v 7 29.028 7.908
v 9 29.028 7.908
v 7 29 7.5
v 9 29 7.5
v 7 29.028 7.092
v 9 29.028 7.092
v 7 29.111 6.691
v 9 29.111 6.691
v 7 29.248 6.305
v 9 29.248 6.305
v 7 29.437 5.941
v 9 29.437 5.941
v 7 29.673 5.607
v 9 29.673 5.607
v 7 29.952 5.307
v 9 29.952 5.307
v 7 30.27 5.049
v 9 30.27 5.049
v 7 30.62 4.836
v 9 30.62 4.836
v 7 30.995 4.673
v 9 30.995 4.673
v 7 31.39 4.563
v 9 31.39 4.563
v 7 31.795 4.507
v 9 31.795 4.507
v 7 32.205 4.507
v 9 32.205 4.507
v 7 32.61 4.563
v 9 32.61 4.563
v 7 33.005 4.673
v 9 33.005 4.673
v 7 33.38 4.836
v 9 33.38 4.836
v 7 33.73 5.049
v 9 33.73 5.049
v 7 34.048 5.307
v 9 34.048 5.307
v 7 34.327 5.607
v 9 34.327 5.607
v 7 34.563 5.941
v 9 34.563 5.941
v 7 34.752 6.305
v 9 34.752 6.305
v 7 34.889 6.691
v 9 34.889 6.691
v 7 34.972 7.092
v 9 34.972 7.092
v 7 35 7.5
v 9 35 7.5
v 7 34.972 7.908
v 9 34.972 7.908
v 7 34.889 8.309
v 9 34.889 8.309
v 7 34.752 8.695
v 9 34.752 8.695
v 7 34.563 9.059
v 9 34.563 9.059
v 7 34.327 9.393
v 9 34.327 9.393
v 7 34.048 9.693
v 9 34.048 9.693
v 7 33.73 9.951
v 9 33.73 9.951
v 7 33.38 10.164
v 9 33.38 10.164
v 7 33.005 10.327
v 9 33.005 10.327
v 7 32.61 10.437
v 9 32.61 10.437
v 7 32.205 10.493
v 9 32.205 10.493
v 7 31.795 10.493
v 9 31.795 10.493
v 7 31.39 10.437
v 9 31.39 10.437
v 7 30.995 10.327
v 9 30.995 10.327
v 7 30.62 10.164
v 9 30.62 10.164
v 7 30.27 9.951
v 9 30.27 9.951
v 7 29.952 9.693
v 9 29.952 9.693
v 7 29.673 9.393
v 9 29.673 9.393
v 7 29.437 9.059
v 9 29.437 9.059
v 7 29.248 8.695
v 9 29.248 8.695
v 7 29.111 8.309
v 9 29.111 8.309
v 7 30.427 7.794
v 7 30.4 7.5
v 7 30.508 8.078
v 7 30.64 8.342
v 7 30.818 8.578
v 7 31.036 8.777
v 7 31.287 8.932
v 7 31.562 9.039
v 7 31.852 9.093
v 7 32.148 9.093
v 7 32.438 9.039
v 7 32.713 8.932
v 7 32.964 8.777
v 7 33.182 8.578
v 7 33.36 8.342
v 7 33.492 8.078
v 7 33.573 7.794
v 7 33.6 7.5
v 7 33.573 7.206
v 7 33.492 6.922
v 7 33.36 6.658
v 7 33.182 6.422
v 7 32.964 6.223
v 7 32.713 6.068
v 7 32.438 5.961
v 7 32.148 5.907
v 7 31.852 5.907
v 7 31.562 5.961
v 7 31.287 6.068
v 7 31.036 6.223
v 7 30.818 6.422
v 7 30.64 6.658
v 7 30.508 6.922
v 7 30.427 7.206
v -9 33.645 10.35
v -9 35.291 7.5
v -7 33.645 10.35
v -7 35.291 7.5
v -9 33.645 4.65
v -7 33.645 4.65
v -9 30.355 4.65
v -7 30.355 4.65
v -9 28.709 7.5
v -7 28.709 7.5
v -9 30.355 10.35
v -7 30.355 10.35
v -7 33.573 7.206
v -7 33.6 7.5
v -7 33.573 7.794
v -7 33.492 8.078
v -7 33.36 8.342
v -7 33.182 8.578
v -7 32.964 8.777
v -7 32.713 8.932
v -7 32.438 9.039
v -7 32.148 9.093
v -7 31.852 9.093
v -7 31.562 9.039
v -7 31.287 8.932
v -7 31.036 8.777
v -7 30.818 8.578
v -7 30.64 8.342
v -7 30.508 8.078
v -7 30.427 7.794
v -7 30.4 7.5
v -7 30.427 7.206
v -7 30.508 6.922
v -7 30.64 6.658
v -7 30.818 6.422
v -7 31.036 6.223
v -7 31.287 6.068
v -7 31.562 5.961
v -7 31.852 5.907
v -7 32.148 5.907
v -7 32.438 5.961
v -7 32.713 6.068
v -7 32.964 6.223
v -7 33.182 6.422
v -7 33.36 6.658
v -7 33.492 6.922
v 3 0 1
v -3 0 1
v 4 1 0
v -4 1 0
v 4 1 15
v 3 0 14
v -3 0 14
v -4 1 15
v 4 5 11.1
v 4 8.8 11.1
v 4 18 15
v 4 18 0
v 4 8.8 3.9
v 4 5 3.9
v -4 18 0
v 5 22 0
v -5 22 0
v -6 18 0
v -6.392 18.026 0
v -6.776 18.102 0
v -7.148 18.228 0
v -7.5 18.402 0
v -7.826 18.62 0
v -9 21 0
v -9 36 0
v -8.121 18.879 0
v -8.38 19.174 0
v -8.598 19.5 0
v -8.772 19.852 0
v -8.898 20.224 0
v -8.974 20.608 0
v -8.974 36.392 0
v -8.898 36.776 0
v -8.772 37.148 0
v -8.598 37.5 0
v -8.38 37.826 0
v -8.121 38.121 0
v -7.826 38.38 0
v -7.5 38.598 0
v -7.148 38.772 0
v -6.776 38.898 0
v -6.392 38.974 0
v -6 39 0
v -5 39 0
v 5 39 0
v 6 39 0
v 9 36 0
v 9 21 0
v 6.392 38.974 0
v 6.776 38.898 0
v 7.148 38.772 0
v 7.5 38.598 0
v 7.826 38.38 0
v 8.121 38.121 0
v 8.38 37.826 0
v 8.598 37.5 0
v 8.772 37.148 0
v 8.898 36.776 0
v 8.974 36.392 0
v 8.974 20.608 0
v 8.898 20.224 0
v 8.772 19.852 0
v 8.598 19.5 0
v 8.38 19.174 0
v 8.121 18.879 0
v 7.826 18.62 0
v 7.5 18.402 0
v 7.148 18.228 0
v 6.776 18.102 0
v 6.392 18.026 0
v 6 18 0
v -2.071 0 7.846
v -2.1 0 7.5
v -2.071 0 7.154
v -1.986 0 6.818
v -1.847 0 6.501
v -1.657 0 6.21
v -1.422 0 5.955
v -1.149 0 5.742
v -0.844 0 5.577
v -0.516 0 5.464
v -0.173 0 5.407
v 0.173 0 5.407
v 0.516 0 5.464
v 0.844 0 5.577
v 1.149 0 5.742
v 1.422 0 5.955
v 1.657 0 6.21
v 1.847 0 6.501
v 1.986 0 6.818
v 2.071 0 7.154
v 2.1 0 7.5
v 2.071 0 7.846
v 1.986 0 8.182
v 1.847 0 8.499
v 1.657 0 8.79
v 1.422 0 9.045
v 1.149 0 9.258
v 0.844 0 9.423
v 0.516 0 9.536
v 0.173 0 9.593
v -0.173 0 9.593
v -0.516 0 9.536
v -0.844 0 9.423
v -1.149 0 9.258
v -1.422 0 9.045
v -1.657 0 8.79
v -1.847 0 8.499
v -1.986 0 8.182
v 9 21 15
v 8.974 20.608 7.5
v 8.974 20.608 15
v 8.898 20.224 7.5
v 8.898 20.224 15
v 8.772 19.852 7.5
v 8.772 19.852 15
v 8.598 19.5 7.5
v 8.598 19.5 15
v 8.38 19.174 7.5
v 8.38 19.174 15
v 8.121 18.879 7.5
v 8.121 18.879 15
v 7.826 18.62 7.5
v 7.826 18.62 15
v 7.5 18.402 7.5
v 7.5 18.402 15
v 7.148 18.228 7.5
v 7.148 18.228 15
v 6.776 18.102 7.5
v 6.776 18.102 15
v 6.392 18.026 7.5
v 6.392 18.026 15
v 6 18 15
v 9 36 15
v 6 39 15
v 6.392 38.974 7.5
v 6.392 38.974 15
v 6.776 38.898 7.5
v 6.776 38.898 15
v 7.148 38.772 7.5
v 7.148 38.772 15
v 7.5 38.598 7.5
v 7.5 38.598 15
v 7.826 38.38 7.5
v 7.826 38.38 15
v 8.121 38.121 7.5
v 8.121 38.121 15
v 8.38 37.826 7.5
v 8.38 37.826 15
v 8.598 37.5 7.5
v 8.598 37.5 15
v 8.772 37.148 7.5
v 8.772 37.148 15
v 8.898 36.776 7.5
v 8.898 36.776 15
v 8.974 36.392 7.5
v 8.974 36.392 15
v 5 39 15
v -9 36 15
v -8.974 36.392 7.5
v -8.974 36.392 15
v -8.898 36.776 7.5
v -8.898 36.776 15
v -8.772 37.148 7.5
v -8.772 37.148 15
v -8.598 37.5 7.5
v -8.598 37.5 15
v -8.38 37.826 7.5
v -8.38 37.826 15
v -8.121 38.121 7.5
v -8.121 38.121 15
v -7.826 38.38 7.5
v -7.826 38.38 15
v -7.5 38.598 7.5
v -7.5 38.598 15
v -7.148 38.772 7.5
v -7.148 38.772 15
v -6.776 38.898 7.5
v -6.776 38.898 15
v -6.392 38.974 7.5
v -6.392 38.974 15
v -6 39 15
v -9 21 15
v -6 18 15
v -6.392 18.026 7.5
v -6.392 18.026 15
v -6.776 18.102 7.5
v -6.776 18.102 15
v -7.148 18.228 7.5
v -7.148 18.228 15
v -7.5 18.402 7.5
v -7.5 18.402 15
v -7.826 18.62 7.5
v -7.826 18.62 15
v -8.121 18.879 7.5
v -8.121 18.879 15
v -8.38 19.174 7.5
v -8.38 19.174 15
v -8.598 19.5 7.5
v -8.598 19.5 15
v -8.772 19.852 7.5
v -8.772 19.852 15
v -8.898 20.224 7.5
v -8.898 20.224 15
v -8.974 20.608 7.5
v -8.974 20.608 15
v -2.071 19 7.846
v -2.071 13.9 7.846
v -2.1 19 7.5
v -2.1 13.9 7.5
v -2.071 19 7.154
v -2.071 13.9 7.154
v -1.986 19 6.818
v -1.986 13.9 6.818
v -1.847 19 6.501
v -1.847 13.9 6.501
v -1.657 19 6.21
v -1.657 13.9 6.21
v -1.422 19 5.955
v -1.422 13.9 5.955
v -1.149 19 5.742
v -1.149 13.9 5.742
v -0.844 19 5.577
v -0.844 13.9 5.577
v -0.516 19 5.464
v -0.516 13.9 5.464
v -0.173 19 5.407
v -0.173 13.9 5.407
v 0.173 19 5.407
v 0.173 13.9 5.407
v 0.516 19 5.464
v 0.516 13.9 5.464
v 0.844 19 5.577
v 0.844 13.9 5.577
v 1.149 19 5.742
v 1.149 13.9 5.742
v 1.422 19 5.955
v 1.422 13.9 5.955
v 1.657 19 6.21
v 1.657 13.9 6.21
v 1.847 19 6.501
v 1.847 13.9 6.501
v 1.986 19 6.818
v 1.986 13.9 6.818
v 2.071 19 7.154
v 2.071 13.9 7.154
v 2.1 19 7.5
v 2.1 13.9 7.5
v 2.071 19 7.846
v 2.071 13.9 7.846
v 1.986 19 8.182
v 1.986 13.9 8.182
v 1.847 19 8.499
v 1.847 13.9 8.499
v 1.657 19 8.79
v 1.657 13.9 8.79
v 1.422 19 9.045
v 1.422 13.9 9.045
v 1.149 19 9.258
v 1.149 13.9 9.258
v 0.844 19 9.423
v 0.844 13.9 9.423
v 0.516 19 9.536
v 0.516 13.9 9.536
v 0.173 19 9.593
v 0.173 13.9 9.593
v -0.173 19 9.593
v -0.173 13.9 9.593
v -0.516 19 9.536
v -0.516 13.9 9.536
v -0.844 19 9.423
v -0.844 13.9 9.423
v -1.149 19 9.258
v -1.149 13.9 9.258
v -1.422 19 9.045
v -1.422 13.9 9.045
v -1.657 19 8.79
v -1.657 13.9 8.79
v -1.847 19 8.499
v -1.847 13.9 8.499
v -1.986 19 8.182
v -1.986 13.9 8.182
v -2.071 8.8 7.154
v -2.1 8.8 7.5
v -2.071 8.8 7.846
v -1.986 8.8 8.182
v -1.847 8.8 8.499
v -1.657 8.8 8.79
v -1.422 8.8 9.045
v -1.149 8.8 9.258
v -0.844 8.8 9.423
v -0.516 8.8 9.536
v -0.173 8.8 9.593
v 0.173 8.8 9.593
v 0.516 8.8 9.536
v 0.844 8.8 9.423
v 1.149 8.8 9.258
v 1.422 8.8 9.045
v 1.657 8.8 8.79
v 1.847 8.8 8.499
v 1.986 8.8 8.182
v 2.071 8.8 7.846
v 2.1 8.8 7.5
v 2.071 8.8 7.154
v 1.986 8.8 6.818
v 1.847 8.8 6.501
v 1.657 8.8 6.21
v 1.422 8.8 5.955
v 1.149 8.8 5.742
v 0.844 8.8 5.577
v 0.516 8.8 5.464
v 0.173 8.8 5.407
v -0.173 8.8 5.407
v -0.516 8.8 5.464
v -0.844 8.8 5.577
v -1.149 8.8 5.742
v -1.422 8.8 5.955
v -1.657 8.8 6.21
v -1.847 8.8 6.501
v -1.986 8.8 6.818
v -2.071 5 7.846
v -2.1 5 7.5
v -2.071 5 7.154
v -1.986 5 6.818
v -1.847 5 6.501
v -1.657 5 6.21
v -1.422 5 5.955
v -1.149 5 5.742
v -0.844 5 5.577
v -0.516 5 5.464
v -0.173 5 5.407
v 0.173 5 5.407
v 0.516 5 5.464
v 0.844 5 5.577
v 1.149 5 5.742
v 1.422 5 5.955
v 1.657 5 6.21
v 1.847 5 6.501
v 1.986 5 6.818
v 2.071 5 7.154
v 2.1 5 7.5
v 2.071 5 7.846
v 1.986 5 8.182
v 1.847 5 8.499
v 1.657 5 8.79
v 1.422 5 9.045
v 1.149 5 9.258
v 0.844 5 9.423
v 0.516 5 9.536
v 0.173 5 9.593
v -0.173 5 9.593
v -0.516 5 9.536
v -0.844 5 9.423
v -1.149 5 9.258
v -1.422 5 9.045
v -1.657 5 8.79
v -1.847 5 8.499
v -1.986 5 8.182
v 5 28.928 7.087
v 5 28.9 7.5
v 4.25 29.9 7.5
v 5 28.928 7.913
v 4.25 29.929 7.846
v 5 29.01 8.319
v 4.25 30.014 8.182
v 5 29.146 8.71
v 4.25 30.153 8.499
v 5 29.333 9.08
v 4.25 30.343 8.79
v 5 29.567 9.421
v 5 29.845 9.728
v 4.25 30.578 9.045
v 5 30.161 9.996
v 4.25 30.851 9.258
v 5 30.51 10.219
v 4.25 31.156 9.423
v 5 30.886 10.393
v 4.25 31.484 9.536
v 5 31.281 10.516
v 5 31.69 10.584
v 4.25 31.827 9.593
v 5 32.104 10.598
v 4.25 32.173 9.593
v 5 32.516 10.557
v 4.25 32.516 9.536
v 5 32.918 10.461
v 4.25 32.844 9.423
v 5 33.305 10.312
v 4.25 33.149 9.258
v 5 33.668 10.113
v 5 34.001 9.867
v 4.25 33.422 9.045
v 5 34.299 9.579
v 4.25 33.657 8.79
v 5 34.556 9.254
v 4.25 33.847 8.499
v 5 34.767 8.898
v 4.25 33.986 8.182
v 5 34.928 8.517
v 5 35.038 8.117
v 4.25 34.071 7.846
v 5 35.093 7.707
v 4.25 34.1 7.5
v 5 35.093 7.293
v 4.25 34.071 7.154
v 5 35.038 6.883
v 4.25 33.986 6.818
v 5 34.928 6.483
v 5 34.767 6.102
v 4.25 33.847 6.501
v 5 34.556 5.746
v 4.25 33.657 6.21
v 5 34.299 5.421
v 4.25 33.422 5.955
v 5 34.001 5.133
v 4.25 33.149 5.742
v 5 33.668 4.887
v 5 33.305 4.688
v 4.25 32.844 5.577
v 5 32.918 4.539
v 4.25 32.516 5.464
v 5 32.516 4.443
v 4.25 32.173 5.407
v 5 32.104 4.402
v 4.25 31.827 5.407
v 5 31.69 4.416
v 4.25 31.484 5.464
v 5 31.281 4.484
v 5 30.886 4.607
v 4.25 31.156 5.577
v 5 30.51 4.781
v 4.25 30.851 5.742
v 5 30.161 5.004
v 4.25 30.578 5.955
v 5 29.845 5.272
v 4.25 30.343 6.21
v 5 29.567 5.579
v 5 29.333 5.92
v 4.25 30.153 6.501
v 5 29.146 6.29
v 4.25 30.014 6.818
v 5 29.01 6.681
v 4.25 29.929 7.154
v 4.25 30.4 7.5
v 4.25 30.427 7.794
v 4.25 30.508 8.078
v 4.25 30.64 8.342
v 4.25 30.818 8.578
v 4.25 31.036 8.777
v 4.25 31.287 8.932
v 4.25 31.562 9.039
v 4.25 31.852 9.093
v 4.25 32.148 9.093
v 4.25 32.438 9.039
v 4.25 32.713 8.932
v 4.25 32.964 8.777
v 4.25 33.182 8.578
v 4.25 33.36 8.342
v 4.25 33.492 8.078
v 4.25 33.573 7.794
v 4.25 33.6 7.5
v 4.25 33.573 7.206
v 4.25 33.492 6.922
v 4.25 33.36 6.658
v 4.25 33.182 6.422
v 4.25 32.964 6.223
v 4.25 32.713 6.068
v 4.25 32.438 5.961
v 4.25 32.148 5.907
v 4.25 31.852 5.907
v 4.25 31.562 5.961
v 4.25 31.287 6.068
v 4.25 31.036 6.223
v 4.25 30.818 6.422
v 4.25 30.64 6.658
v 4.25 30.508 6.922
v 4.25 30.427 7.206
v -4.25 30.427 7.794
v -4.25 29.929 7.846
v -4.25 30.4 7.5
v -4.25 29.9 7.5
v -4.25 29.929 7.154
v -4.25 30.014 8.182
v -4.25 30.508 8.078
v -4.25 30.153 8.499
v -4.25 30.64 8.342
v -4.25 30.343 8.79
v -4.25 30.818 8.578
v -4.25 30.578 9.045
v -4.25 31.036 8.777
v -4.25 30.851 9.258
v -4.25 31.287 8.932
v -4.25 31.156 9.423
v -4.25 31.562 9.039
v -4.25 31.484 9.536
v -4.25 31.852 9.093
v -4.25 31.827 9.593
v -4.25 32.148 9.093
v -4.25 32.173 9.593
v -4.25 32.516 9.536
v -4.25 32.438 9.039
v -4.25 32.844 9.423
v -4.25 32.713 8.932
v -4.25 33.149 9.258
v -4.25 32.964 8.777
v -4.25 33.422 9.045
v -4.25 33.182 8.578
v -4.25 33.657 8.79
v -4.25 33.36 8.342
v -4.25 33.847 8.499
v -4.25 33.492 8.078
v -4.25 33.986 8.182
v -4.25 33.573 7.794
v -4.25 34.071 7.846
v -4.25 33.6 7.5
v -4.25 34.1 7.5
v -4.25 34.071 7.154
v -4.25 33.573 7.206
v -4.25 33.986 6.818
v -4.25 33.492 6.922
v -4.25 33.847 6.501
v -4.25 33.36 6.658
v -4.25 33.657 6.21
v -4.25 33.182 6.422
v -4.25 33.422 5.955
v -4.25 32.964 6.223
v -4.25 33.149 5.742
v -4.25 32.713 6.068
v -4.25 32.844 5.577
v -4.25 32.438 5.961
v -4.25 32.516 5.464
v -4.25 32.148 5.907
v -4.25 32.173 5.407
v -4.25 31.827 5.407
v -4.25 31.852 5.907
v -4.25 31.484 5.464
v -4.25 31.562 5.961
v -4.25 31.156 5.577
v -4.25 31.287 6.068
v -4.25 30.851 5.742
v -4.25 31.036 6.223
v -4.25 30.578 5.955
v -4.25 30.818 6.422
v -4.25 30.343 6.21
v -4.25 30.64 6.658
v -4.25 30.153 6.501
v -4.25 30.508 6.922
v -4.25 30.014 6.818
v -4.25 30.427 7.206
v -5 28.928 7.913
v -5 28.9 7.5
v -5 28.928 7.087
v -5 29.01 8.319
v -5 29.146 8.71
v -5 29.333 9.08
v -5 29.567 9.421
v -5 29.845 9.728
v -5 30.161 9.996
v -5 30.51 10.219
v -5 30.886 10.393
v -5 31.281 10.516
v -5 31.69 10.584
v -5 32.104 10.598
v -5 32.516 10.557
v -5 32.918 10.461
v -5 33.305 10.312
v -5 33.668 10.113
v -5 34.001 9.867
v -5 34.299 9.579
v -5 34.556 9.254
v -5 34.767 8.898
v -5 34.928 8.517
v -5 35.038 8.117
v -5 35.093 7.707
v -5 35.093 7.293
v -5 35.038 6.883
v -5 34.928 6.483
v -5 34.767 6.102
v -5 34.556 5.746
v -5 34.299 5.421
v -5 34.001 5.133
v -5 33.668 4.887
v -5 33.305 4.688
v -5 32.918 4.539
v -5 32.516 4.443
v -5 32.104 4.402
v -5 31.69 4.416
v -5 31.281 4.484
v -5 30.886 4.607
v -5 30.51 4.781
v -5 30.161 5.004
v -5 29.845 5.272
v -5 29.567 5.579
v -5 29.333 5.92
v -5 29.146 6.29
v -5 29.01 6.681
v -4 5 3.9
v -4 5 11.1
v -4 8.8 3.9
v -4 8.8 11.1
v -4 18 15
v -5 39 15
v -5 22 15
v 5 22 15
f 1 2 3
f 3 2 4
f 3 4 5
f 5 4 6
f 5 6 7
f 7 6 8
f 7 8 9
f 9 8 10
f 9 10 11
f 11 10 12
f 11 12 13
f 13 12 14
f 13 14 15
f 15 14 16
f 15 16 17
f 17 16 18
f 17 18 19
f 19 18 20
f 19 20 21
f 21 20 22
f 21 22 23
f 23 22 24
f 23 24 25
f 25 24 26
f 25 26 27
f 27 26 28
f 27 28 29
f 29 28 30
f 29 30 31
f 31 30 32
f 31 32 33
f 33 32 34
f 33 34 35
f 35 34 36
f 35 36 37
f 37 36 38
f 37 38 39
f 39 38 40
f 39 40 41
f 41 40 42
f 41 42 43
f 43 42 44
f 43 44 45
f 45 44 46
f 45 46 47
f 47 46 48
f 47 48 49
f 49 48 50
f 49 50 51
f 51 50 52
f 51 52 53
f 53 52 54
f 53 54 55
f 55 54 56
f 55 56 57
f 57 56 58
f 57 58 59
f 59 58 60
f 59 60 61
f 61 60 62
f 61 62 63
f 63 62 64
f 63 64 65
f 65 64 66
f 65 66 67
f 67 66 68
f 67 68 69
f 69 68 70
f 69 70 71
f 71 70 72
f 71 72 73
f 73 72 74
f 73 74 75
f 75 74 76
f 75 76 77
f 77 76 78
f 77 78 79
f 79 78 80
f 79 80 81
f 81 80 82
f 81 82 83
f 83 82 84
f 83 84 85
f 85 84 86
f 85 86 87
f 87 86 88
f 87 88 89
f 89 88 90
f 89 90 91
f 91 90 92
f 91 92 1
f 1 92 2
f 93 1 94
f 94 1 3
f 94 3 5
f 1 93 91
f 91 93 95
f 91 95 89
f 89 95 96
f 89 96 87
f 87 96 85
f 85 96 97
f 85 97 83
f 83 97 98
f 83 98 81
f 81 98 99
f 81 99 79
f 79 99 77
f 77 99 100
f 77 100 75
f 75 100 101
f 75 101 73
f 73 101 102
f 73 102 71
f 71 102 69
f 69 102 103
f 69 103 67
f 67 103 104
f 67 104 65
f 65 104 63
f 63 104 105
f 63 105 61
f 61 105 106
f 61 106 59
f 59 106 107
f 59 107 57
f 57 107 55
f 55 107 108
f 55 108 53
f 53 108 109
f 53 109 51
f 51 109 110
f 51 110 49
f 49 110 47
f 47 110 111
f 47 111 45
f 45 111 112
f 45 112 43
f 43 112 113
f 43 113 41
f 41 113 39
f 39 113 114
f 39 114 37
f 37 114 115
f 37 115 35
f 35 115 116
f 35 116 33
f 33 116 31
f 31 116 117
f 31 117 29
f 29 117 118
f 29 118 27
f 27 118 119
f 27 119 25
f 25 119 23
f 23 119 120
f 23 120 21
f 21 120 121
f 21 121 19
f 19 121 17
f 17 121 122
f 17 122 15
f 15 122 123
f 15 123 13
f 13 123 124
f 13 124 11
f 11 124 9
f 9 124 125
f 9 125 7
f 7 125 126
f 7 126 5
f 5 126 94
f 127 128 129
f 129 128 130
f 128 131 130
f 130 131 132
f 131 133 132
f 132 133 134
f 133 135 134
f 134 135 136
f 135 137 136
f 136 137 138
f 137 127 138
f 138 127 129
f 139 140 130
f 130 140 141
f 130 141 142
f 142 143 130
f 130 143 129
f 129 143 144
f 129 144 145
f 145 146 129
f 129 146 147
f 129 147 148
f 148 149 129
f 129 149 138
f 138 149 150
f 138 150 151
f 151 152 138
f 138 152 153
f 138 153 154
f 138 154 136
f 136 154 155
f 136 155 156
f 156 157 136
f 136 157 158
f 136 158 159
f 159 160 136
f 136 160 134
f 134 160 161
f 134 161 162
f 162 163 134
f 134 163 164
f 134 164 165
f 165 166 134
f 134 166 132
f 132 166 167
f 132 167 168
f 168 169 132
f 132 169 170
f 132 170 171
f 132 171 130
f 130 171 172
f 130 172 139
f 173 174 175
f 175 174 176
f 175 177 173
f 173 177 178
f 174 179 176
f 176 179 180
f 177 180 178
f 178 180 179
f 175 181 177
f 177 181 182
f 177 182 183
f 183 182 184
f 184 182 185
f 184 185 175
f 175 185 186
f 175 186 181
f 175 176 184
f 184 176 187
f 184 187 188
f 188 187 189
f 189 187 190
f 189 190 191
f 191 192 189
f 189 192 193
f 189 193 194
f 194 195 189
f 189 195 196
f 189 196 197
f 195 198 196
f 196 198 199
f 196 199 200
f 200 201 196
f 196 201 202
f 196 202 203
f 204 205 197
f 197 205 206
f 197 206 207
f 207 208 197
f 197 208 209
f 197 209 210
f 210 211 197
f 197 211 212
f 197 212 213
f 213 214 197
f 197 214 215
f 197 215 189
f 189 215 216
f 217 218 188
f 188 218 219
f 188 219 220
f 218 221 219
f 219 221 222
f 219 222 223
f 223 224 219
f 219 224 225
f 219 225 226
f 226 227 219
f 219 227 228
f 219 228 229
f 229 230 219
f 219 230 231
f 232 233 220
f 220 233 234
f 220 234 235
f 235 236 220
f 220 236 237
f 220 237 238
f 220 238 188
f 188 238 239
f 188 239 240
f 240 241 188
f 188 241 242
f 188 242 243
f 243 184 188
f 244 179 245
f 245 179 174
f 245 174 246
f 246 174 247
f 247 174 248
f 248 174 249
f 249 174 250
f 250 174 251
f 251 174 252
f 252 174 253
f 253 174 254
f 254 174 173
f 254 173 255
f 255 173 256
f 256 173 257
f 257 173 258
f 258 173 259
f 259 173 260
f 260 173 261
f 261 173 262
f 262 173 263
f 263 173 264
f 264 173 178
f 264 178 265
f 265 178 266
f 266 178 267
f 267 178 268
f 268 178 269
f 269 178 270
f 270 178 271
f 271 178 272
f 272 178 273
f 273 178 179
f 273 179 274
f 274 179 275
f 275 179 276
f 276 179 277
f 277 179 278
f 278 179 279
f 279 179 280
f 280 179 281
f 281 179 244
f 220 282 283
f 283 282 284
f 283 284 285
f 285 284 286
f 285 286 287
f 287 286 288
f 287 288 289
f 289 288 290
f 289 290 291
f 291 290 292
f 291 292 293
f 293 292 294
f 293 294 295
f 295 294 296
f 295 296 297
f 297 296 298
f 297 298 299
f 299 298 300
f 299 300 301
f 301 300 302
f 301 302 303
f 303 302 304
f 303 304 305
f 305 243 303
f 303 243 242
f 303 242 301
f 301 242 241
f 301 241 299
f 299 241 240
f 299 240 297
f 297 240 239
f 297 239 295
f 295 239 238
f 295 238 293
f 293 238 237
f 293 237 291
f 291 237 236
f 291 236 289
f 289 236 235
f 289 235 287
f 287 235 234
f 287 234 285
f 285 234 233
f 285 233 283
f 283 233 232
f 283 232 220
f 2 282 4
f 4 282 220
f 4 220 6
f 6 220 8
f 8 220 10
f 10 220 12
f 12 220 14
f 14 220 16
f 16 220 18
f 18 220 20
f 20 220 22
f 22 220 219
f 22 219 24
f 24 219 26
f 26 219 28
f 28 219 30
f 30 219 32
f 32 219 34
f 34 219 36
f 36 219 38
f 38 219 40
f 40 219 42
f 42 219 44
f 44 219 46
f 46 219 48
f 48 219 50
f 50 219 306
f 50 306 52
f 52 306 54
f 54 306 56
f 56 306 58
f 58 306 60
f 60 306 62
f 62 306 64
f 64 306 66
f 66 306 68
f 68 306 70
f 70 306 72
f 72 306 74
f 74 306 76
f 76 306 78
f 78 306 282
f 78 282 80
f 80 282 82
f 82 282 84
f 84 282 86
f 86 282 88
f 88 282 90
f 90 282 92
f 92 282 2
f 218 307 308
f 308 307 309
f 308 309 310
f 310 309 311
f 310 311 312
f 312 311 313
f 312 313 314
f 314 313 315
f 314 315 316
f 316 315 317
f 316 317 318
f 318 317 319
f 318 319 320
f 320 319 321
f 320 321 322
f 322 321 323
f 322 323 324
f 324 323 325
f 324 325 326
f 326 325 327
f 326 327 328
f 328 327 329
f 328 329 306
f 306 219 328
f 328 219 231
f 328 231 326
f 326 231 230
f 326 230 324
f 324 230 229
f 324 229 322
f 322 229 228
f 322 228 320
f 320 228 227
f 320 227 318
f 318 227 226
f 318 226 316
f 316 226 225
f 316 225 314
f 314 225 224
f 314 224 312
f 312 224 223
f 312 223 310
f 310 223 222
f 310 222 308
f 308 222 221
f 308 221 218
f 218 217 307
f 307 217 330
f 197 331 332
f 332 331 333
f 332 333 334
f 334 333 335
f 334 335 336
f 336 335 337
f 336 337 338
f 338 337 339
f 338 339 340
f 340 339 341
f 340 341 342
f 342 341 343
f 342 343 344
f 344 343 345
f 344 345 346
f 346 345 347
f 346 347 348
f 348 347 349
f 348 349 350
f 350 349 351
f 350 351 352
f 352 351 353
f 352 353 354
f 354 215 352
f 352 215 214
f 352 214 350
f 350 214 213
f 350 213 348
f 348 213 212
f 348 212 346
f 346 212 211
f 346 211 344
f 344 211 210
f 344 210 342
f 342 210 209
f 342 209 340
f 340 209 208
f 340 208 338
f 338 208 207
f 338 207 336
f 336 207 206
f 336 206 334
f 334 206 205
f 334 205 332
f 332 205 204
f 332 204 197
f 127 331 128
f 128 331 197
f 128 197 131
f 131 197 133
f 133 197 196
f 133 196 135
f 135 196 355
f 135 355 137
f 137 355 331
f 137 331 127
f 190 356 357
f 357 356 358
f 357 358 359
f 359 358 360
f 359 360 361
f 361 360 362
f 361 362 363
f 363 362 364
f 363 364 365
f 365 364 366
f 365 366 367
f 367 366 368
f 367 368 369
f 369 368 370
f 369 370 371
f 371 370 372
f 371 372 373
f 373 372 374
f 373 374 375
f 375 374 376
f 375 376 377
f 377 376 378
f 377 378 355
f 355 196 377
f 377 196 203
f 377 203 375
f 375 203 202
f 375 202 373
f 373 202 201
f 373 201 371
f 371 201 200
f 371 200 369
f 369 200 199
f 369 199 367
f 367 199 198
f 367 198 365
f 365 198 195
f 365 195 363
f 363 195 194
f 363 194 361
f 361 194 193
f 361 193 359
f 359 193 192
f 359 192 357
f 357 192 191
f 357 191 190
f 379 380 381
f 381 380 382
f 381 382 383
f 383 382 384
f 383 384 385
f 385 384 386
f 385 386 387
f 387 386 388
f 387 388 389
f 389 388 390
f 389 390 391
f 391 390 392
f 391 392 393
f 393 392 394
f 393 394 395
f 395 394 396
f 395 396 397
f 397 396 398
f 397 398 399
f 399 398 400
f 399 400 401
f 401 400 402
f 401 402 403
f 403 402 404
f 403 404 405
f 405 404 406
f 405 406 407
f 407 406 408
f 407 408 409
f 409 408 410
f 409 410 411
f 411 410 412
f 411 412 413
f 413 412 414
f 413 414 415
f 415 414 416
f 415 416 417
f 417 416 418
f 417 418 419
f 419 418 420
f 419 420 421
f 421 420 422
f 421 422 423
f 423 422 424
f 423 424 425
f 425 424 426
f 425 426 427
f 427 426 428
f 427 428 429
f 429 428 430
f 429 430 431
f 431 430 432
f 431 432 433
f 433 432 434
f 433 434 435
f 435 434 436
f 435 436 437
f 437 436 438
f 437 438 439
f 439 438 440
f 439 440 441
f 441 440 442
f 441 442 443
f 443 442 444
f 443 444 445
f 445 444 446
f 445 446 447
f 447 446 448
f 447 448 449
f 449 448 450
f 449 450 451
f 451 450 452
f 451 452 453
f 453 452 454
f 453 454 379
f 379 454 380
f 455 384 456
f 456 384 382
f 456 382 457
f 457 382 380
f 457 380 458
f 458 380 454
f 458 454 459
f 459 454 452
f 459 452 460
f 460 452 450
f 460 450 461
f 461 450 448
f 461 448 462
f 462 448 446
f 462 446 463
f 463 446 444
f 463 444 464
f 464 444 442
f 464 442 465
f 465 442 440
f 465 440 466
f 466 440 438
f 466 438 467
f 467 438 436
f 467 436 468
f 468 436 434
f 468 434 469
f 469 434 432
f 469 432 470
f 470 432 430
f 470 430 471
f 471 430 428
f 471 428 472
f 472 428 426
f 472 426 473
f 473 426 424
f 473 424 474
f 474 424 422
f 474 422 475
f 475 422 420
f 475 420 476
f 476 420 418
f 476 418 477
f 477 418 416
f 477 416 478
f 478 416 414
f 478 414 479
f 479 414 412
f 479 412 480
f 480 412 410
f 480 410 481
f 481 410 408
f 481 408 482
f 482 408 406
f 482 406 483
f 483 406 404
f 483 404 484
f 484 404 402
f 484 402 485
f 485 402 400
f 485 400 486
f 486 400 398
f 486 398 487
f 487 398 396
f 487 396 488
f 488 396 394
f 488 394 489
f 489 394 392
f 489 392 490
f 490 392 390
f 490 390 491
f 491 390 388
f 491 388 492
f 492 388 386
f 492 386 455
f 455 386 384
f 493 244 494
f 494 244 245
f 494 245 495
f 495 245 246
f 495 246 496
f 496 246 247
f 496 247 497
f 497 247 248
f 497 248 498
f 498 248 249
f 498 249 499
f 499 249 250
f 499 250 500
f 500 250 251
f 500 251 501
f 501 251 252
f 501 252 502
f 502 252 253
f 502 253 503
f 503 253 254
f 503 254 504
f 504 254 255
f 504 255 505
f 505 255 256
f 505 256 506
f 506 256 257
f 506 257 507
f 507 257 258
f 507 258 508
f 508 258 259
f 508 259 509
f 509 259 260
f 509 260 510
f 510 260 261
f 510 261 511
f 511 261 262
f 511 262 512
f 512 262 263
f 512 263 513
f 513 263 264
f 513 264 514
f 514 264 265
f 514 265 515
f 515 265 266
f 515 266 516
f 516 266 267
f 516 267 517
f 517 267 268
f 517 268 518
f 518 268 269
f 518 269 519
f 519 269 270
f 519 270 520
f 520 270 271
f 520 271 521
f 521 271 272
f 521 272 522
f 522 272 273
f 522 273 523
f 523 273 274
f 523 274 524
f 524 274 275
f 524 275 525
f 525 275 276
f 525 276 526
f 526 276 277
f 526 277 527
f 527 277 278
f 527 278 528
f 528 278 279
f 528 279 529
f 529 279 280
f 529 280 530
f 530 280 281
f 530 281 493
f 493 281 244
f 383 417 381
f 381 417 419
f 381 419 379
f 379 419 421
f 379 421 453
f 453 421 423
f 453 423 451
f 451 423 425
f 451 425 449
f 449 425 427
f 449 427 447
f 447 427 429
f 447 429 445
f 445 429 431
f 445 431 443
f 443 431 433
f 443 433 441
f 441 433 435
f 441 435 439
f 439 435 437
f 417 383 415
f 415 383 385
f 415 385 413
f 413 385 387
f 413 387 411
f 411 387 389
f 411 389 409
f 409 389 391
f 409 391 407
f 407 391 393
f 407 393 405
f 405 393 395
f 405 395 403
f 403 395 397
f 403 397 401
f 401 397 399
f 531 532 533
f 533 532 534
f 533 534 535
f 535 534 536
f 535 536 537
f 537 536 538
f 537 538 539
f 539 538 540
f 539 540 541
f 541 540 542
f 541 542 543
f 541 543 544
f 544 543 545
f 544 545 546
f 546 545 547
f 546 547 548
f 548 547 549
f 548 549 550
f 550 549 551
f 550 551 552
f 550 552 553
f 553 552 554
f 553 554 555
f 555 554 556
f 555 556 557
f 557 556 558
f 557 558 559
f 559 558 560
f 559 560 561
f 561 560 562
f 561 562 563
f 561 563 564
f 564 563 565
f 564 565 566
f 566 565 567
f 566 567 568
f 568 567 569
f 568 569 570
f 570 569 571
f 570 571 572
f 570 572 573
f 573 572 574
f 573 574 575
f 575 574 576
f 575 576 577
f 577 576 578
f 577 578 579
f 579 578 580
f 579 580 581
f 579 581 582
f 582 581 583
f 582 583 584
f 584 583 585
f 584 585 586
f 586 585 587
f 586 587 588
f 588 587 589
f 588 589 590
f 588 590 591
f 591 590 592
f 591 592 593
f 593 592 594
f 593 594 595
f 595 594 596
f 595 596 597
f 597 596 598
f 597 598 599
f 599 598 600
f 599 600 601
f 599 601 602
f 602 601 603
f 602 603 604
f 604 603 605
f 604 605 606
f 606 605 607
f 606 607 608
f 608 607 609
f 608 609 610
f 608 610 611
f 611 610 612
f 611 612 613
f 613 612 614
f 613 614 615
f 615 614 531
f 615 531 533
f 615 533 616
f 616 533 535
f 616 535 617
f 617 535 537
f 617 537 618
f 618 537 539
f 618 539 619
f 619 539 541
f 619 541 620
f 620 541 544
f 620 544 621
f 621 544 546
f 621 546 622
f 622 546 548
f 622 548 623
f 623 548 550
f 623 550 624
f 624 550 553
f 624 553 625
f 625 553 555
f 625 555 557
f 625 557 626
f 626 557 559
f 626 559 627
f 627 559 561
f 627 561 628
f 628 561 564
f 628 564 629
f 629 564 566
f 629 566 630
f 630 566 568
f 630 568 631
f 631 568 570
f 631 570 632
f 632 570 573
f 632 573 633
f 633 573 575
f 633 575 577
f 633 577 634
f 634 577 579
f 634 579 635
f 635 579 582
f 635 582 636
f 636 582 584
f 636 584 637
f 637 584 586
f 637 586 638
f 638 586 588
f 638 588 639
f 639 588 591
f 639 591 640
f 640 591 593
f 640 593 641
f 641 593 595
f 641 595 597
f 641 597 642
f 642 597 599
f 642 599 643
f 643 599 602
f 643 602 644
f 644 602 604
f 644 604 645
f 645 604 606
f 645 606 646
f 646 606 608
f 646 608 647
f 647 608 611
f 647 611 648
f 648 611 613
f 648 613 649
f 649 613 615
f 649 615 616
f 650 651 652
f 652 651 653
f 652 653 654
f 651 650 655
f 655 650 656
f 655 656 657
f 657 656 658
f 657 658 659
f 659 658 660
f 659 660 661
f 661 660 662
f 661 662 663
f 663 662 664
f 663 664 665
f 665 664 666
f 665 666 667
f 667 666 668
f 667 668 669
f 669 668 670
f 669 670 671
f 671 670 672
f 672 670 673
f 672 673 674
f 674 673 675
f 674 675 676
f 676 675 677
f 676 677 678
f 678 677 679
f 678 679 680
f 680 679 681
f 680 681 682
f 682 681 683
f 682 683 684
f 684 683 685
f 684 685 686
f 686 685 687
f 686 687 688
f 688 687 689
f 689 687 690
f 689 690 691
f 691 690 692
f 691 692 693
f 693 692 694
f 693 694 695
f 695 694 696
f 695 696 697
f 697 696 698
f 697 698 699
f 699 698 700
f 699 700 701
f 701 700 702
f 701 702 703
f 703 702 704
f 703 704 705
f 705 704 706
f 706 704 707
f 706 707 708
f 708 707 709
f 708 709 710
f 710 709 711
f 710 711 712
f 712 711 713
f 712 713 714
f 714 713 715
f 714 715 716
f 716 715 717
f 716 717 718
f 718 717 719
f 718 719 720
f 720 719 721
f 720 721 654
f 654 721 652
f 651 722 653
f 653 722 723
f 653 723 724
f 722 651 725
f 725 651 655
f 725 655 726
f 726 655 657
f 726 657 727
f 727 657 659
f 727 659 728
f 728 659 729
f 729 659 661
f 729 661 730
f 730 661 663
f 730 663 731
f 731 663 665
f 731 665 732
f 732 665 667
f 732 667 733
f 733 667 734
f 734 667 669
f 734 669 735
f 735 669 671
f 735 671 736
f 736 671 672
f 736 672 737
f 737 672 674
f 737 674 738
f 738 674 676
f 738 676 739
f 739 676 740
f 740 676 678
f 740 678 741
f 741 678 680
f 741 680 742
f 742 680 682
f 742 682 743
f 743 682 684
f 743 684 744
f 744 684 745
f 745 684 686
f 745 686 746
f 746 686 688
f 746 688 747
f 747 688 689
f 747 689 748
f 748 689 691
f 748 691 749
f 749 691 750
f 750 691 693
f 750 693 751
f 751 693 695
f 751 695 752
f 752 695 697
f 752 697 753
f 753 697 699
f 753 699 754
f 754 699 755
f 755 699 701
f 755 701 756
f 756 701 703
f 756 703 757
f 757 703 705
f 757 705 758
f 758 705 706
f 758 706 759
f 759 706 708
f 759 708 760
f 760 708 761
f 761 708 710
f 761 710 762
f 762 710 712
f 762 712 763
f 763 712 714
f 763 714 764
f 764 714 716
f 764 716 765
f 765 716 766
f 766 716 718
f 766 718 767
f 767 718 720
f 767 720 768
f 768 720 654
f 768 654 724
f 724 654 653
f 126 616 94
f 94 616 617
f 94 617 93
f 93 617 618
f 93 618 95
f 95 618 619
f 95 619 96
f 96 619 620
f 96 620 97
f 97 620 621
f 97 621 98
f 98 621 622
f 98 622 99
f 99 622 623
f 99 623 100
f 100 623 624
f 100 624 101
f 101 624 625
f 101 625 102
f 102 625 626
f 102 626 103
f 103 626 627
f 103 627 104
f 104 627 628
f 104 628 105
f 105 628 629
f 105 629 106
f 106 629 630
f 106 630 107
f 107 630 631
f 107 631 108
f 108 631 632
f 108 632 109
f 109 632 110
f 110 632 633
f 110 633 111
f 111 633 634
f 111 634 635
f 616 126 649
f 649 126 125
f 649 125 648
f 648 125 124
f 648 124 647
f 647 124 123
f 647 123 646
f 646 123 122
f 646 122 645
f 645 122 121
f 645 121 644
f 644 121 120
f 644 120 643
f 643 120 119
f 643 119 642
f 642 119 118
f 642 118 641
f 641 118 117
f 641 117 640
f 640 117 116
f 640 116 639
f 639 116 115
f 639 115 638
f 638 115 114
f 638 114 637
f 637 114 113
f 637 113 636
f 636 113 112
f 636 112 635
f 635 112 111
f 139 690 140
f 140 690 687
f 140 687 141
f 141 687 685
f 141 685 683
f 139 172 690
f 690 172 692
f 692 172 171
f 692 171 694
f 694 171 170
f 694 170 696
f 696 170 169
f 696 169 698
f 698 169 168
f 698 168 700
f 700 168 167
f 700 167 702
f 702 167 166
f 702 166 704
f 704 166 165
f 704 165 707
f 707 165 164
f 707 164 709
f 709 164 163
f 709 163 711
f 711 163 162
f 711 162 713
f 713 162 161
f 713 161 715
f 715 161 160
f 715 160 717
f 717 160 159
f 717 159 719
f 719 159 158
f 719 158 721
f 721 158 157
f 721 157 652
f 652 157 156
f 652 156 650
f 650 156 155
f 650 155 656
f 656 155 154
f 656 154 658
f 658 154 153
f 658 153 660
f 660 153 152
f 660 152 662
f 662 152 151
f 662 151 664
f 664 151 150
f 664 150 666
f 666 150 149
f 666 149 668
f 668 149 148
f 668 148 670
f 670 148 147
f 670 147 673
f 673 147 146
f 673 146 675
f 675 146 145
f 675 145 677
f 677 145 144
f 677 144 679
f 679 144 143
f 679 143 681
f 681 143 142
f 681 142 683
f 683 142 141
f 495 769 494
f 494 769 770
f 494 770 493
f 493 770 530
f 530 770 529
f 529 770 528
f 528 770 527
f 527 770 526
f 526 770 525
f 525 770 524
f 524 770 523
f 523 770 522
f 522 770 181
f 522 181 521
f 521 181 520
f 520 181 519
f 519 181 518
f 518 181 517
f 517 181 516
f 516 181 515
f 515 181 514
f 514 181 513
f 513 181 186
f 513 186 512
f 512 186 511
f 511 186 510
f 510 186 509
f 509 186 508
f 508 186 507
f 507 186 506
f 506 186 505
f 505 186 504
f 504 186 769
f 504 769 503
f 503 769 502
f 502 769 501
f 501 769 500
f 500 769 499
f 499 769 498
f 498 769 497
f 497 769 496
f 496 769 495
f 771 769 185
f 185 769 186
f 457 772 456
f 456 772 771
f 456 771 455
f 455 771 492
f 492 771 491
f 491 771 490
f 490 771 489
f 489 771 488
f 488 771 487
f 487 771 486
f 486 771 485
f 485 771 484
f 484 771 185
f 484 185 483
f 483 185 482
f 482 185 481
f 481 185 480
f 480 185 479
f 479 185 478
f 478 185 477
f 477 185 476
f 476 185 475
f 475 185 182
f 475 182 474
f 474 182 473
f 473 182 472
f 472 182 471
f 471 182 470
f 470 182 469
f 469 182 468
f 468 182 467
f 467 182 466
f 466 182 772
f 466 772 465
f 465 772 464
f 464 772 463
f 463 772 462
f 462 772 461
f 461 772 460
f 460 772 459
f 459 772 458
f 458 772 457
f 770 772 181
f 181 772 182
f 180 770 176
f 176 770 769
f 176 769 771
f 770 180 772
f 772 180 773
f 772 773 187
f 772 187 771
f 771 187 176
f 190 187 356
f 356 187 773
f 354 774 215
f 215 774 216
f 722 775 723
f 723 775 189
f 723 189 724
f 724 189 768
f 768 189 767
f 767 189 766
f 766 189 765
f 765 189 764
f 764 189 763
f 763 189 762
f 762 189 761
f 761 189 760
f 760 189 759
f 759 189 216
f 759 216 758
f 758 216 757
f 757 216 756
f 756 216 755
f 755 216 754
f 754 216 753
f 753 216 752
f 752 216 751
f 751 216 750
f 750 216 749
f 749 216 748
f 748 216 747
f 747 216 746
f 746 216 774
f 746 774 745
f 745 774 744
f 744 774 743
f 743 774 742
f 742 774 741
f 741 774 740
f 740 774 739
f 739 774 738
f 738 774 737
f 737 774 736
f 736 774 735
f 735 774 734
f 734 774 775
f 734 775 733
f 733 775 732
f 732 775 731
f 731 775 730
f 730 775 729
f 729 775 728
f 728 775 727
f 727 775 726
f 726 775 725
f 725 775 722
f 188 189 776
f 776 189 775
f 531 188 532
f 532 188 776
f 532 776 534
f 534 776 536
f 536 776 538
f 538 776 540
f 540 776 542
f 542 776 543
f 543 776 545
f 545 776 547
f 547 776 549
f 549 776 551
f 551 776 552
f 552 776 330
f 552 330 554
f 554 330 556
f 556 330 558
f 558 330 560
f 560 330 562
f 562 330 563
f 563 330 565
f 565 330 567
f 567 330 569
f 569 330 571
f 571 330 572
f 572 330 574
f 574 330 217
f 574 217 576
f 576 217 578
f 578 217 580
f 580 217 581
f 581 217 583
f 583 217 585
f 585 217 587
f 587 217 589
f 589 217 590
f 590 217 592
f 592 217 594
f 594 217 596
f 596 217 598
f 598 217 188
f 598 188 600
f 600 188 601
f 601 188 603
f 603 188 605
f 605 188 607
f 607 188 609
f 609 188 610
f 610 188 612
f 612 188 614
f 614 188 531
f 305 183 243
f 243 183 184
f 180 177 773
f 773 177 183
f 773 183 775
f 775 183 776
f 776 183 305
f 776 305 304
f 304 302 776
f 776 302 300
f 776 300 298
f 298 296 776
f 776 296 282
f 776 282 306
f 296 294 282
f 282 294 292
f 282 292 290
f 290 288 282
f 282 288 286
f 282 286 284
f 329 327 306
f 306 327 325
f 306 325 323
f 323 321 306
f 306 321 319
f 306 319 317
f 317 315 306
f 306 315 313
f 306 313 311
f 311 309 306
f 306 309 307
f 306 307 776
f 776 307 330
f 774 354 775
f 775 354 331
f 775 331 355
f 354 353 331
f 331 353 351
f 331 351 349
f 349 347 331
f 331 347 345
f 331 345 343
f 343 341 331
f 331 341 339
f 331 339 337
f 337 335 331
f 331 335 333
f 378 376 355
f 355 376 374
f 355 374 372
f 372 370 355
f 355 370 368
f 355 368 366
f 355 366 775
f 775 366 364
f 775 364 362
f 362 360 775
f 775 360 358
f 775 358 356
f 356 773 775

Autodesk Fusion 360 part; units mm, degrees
sketch "Sketch1" plane through (0, 0, 0) normal (0, 0, 1) x (1, 0, 0)
  line L0 (4, 0) -> (4, 18)
  line L1 (4, 18) -> (9, 18)
  line L2 (9, 18) -> (9, 39)
  line L3 (9, 39) -> (5, 39)
  line L4 (5, 39) -> (5, 22)
  line L5 (5, 22) -> (-5, 22)
  line L6 (-5, 22) -> (-5, 39)
  line L7 (-5, 39) -> (-9, 39)
  line L8 (-9, 39) -> (-9, 18)
  line L9 (-9, 18) -> (-4, 18)
  line L10 (-4, 18) -> (-4, 0)
  line L11 (-4, 0) -> (4, 0)
  point P0 (0, 22)
  dimension "d1" = 10
  dimension "d2" = 17
  dimension "d3" = 4
  dimension "d4" = 18
  dimension "d5" = 4
  dimension "d6" = 8
extrude "Extrude1" add sketch "Sketch1" along normal blind 15
sketch "Sketch2" plane through (-9, 0, 0) normal (-1, 0, 0) x (0, -1, 0)
  line L0 (-39, 0) -> (-18, 0)
  line L1 (-18, 0) -> (-18, 15)
  line L2 (-18, 15) -> (-39, 15)
  line L3 (-39, 15) -> (-39, 0)
  circle A0 centre (-32, 7.5) radius 1.6
  line L4 (-22, 0) -> (-22, 15)
  line L5 (-8.8, 11.1) -> (-5, 11.1)
  line L6 (-5, 11.1) -> (-5, 3.9)
  line L7 (-5, 3.9) -> (-8.8, 3.9)
  line L8 (-8.8, 3.9) -> (-8.8, 11.1)
  line L9 (-8.8, 11.1) -> (-5, 3.9) construction
  line L10 (-5, 11.1) -> (-8.8, 3.9) construction
  line L11 (0, 0) -> (0, 15)
  point P0 (-39, 7.5)
  point P1 (-6.9, 7.5)
  point P2 (0, 7.5)
  dimension "d9" = 3.2
  dimension "d11" = 10
  dimension "d18" = 7.2
  dimension "d19" = 3.8
  dimension "d20" = 5
extrude "Extrude2" cut sketch "Sketch2" against normal up to surface (18 mm away) contours A0 | L5 L6 L7 L8
ref_plane "WorkPlane1" through (0, 19.5, 7.5) normal (0, 0, 1) x (1, 0, 0)
sketch "Sketch4" plane through (0, 17, 7.5) normal (0, 0, 1) x (1, 0, 0)
  line L0 (-5, 16.6) -> (-5, 13.4)
  line L1 (-9, 13.4) -> (-9, 16.6)
  line L2 (9, 16.6) -> (9, 13.4)
  line L3 (5, 13.4) -> (5, 16.6)
  line L4 (-9, 15) -> (9, 15) construction
  line L5 (-5, 13.4) -> (-5, 11.9)
  line L6 (-5, 11.9) -> (-4.25, 12.9)
  line L7 (-4.25, 12.9) -> (-4.25, 13.4)
  line L8 (-4.25, 13.4) -> (-5, 13.4)
  line L9 (5, 13.4) -> (5, 11.9)
  line L10 (5, 11.9) -> (4.25, 12.9)
  line L11 (4.25, 12.9) -> (4.25, 13.4)
  line L12 (4.25, 13.4) -> (5, 13.4)
  dimension "d14" = 0.75
  dimension "d15" = 0.5
  dimension "d16" = 1.5
revolve "Revolve1" add sketch "Sketch4" angle 360 about axis through (-9, 32, 7.5) along (1, 0, 0)
sketch "Sketch5" plane through (0, 0, 0) normal (0, -1, 0) x (1, 0, 0)
  line L0 (-4, 0) -> (4, 0)
  line L1 (4, 0) -> (4, 15)
  line L2 (4, 15) -> (-4, 15)
  line L3 (-4, 15) -> (-4, 0)
  circle A0 centre (0, 7.5) radius 2.1
  point P0 (-4, 7.5)
  dimension "d21" = 4.2
extrude "Extrude3" cut sketch "Sketch5" against normal blind 19 contours A0
fillet "Fillet1" radius 3 4 edges at (-9, 18, 7.5) (-9, 39, 7.5) (9, 39, 7.5) (9, 18, 7.5)
chamfer "Chamfer1" distance 1 angle 45 4 edges at (0, 0, 15) (-4, 0, 7.5) (0, 0, 0) (4, 0, 7.5)
sketch "Sketch6" plane through (-9, 0, 0) normal (-1, 0, 0) x (0, -1, 0)
  circle A0 centre (-32, 7.5) radius 1.6
  line L0 (-36, 15) -> (-36, 0)
  line L1 (-36, 0) -> (-21, 0)
  line L2 (-21, 0) -> (-21, 15)
  line L3 (-21, 15) -> (-36, 15)
  line L4 (-33.6454, 10.35) -> (-35.2909, 7.5)
  line L5 (-35.2909, 7.5) -> (-33.6454, 4.65)
  line L6 (-33.6454, 4.65) -> (-30.3546, 4.65)
  line L7 (-30.3546, 4.65) -> (-28.7091, 7.5)
  line L8 (-28.7091, 7.5) -> (-30.3546, 10.35)
  line L9 (-30.3546, 10.35) -> (-33.6454, 10.35)
  point P0 (-32, 7.5)
  dimension "d50" = 5.7
extrude "Extrude4" cut sketch "Sketch6" against normal blind 2 contours L4 L5 L6 L7 L8 L9
sketch "Sketch7" plane through (9, 0, 0) normal (1, 0, 0) x (0, 1, 0)
  circle A0 centre (32, 7.5) radius 1.6
  line L0 (21, 15) -> (21, 0)
  line L1 (21, 0) -> (36, 0)
  line L2 (36, 0) -> (36, 15)
  line L3 (36, 15) -> (21, 15)
  circle A1 centre (32, 7.5) radius 3
  dimension "d53" = 6
extrude "Extrude5" cut sketch "Sketch7" against normal blind 2 contours A1
